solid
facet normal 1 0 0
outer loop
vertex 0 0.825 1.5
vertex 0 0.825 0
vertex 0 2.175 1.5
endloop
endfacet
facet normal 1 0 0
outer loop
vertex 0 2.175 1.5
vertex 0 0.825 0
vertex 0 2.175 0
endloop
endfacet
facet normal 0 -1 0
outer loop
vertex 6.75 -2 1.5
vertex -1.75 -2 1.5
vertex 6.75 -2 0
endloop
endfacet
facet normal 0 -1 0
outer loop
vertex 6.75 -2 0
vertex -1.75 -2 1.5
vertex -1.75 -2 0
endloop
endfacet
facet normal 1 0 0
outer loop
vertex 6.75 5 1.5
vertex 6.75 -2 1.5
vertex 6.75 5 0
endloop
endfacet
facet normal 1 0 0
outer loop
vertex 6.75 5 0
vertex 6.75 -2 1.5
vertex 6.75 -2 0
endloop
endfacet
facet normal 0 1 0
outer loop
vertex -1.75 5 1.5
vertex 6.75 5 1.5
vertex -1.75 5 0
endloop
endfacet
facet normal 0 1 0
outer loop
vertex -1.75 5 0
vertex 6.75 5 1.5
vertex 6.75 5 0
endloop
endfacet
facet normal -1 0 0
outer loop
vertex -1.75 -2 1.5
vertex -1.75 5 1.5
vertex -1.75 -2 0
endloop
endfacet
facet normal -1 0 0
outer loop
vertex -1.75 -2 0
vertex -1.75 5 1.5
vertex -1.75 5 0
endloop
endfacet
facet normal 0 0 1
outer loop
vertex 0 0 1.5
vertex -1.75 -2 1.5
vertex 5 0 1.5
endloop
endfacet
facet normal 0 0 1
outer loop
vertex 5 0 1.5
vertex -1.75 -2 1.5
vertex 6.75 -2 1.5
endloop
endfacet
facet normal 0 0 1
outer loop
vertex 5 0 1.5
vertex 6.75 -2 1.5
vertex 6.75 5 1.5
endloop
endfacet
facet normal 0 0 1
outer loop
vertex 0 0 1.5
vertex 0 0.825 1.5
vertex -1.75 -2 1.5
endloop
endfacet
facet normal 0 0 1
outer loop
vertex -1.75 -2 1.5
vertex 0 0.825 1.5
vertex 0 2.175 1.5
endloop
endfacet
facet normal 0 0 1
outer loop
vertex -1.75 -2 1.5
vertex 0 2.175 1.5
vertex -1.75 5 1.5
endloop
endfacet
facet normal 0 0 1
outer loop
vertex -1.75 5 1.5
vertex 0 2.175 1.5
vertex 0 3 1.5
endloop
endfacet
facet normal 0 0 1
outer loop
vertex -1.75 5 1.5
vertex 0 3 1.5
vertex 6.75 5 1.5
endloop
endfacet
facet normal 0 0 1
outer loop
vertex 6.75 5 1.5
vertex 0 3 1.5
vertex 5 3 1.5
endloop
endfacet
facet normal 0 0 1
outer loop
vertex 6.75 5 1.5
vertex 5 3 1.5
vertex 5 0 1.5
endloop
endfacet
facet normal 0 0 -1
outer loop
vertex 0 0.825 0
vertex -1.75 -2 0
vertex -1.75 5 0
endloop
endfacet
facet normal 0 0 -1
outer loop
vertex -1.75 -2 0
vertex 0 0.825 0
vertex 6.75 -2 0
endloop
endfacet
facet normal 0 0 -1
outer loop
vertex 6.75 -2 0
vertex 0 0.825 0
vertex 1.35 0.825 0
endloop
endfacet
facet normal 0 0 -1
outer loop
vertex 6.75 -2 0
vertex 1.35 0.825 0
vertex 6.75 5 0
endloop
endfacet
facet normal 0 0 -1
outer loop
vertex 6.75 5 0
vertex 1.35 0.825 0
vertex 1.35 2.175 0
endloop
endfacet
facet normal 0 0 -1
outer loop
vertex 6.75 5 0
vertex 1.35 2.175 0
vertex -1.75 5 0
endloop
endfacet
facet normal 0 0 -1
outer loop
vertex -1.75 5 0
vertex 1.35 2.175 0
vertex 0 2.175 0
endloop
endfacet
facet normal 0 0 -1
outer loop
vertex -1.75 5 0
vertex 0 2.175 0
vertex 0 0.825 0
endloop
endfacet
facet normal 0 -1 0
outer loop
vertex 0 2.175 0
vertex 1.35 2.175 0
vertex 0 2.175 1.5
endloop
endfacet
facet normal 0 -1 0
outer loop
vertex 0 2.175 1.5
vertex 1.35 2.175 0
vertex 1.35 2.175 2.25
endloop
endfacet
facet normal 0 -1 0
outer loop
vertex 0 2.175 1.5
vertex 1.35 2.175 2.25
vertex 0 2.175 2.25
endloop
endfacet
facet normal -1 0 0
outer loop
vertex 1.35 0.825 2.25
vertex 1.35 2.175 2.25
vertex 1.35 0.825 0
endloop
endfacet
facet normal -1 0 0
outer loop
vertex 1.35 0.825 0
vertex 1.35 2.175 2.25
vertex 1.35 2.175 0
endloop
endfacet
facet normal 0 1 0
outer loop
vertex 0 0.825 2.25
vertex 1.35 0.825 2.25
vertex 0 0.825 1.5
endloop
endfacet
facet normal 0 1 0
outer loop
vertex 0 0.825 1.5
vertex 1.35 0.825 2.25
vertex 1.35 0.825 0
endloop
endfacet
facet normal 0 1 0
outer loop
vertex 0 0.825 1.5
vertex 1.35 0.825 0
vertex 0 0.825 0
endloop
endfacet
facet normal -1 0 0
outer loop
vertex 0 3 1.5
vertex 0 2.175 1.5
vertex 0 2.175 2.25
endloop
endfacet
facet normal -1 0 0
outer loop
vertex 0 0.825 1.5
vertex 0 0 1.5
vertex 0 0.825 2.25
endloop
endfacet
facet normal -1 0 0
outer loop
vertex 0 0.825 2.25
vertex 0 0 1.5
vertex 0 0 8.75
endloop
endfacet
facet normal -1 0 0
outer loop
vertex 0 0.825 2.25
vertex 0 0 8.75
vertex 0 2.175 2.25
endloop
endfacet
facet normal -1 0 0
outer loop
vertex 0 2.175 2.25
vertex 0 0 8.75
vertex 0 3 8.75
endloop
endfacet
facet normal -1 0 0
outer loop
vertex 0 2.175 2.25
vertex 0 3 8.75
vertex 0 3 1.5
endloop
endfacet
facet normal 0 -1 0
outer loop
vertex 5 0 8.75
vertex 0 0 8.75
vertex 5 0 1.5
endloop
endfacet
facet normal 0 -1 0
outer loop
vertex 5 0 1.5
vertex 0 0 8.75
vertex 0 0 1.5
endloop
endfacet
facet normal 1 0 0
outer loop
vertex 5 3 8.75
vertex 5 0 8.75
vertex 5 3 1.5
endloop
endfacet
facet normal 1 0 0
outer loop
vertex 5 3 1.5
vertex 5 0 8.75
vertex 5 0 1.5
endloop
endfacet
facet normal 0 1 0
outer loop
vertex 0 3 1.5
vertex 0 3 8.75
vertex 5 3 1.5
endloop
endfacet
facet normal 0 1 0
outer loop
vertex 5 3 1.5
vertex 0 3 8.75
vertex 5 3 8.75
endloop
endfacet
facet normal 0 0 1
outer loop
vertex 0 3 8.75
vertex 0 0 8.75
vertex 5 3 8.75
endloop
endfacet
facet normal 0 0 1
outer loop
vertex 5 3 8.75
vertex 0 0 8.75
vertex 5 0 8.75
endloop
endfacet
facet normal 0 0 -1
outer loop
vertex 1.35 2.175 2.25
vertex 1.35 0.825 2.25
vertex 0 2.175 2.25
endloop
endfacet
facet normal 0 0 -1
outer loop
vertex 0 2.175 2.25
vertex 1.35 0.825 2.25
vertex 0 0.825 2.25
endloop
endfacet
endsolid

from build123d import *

# Parameters (mm, degrees)
SKETCH1_W           = 8.5
SKETCH1_H           = 7
BOSS_EXTRUDE1_DEPTH = 1.5
BOSS_EXTRUDE2_DEPTH = 2.25
SKETCH3_W           = 5
SKETCH3_H           = 3
BOSS_EXTRUDE3_DEPTH = 6.5


with BuildPart() as part:
    # Sketch1 → Boss-Extrude1 (new body)
    with BuildSketch(Plane.XY):
        with Locations((2.5, 1.5)):
            Rectangle(SKETCH1_W, SKETCH1_H)
        Polygon((5, 0), (0, 0), (0, 0.825), (0, 2.175), (0, 3), (5, 3), align=None, mode=Mode.SUBTRACT)
    extrude(amount=BOSS_EXTRUDE1_DEPTH)

    # Sketch1<3> → Boss-Extrude2 (add)
    with BuildSketch(Plane.XY):
        Polygon((0, 0.825), (0, 0), (5, 0), (5, 3), (0, 3), (0, 2.175), (1.35, 2.175), (1.35, 0.825), align=None)
    extrude(amount=BOSS_EXTRUDE2_DEPTH)

    # Sketch3 → Boss-Extrude3 (add)
    with BuildSketch(Plane.XY.offset(2.25)):
        with Locations((2.5, 1.5)):
            Rectangle(SKETCH3_W, SKETCH3_H)
    extrude(amount=BOSS_EXTRUDE3_DEPTH)


solid = part.part
